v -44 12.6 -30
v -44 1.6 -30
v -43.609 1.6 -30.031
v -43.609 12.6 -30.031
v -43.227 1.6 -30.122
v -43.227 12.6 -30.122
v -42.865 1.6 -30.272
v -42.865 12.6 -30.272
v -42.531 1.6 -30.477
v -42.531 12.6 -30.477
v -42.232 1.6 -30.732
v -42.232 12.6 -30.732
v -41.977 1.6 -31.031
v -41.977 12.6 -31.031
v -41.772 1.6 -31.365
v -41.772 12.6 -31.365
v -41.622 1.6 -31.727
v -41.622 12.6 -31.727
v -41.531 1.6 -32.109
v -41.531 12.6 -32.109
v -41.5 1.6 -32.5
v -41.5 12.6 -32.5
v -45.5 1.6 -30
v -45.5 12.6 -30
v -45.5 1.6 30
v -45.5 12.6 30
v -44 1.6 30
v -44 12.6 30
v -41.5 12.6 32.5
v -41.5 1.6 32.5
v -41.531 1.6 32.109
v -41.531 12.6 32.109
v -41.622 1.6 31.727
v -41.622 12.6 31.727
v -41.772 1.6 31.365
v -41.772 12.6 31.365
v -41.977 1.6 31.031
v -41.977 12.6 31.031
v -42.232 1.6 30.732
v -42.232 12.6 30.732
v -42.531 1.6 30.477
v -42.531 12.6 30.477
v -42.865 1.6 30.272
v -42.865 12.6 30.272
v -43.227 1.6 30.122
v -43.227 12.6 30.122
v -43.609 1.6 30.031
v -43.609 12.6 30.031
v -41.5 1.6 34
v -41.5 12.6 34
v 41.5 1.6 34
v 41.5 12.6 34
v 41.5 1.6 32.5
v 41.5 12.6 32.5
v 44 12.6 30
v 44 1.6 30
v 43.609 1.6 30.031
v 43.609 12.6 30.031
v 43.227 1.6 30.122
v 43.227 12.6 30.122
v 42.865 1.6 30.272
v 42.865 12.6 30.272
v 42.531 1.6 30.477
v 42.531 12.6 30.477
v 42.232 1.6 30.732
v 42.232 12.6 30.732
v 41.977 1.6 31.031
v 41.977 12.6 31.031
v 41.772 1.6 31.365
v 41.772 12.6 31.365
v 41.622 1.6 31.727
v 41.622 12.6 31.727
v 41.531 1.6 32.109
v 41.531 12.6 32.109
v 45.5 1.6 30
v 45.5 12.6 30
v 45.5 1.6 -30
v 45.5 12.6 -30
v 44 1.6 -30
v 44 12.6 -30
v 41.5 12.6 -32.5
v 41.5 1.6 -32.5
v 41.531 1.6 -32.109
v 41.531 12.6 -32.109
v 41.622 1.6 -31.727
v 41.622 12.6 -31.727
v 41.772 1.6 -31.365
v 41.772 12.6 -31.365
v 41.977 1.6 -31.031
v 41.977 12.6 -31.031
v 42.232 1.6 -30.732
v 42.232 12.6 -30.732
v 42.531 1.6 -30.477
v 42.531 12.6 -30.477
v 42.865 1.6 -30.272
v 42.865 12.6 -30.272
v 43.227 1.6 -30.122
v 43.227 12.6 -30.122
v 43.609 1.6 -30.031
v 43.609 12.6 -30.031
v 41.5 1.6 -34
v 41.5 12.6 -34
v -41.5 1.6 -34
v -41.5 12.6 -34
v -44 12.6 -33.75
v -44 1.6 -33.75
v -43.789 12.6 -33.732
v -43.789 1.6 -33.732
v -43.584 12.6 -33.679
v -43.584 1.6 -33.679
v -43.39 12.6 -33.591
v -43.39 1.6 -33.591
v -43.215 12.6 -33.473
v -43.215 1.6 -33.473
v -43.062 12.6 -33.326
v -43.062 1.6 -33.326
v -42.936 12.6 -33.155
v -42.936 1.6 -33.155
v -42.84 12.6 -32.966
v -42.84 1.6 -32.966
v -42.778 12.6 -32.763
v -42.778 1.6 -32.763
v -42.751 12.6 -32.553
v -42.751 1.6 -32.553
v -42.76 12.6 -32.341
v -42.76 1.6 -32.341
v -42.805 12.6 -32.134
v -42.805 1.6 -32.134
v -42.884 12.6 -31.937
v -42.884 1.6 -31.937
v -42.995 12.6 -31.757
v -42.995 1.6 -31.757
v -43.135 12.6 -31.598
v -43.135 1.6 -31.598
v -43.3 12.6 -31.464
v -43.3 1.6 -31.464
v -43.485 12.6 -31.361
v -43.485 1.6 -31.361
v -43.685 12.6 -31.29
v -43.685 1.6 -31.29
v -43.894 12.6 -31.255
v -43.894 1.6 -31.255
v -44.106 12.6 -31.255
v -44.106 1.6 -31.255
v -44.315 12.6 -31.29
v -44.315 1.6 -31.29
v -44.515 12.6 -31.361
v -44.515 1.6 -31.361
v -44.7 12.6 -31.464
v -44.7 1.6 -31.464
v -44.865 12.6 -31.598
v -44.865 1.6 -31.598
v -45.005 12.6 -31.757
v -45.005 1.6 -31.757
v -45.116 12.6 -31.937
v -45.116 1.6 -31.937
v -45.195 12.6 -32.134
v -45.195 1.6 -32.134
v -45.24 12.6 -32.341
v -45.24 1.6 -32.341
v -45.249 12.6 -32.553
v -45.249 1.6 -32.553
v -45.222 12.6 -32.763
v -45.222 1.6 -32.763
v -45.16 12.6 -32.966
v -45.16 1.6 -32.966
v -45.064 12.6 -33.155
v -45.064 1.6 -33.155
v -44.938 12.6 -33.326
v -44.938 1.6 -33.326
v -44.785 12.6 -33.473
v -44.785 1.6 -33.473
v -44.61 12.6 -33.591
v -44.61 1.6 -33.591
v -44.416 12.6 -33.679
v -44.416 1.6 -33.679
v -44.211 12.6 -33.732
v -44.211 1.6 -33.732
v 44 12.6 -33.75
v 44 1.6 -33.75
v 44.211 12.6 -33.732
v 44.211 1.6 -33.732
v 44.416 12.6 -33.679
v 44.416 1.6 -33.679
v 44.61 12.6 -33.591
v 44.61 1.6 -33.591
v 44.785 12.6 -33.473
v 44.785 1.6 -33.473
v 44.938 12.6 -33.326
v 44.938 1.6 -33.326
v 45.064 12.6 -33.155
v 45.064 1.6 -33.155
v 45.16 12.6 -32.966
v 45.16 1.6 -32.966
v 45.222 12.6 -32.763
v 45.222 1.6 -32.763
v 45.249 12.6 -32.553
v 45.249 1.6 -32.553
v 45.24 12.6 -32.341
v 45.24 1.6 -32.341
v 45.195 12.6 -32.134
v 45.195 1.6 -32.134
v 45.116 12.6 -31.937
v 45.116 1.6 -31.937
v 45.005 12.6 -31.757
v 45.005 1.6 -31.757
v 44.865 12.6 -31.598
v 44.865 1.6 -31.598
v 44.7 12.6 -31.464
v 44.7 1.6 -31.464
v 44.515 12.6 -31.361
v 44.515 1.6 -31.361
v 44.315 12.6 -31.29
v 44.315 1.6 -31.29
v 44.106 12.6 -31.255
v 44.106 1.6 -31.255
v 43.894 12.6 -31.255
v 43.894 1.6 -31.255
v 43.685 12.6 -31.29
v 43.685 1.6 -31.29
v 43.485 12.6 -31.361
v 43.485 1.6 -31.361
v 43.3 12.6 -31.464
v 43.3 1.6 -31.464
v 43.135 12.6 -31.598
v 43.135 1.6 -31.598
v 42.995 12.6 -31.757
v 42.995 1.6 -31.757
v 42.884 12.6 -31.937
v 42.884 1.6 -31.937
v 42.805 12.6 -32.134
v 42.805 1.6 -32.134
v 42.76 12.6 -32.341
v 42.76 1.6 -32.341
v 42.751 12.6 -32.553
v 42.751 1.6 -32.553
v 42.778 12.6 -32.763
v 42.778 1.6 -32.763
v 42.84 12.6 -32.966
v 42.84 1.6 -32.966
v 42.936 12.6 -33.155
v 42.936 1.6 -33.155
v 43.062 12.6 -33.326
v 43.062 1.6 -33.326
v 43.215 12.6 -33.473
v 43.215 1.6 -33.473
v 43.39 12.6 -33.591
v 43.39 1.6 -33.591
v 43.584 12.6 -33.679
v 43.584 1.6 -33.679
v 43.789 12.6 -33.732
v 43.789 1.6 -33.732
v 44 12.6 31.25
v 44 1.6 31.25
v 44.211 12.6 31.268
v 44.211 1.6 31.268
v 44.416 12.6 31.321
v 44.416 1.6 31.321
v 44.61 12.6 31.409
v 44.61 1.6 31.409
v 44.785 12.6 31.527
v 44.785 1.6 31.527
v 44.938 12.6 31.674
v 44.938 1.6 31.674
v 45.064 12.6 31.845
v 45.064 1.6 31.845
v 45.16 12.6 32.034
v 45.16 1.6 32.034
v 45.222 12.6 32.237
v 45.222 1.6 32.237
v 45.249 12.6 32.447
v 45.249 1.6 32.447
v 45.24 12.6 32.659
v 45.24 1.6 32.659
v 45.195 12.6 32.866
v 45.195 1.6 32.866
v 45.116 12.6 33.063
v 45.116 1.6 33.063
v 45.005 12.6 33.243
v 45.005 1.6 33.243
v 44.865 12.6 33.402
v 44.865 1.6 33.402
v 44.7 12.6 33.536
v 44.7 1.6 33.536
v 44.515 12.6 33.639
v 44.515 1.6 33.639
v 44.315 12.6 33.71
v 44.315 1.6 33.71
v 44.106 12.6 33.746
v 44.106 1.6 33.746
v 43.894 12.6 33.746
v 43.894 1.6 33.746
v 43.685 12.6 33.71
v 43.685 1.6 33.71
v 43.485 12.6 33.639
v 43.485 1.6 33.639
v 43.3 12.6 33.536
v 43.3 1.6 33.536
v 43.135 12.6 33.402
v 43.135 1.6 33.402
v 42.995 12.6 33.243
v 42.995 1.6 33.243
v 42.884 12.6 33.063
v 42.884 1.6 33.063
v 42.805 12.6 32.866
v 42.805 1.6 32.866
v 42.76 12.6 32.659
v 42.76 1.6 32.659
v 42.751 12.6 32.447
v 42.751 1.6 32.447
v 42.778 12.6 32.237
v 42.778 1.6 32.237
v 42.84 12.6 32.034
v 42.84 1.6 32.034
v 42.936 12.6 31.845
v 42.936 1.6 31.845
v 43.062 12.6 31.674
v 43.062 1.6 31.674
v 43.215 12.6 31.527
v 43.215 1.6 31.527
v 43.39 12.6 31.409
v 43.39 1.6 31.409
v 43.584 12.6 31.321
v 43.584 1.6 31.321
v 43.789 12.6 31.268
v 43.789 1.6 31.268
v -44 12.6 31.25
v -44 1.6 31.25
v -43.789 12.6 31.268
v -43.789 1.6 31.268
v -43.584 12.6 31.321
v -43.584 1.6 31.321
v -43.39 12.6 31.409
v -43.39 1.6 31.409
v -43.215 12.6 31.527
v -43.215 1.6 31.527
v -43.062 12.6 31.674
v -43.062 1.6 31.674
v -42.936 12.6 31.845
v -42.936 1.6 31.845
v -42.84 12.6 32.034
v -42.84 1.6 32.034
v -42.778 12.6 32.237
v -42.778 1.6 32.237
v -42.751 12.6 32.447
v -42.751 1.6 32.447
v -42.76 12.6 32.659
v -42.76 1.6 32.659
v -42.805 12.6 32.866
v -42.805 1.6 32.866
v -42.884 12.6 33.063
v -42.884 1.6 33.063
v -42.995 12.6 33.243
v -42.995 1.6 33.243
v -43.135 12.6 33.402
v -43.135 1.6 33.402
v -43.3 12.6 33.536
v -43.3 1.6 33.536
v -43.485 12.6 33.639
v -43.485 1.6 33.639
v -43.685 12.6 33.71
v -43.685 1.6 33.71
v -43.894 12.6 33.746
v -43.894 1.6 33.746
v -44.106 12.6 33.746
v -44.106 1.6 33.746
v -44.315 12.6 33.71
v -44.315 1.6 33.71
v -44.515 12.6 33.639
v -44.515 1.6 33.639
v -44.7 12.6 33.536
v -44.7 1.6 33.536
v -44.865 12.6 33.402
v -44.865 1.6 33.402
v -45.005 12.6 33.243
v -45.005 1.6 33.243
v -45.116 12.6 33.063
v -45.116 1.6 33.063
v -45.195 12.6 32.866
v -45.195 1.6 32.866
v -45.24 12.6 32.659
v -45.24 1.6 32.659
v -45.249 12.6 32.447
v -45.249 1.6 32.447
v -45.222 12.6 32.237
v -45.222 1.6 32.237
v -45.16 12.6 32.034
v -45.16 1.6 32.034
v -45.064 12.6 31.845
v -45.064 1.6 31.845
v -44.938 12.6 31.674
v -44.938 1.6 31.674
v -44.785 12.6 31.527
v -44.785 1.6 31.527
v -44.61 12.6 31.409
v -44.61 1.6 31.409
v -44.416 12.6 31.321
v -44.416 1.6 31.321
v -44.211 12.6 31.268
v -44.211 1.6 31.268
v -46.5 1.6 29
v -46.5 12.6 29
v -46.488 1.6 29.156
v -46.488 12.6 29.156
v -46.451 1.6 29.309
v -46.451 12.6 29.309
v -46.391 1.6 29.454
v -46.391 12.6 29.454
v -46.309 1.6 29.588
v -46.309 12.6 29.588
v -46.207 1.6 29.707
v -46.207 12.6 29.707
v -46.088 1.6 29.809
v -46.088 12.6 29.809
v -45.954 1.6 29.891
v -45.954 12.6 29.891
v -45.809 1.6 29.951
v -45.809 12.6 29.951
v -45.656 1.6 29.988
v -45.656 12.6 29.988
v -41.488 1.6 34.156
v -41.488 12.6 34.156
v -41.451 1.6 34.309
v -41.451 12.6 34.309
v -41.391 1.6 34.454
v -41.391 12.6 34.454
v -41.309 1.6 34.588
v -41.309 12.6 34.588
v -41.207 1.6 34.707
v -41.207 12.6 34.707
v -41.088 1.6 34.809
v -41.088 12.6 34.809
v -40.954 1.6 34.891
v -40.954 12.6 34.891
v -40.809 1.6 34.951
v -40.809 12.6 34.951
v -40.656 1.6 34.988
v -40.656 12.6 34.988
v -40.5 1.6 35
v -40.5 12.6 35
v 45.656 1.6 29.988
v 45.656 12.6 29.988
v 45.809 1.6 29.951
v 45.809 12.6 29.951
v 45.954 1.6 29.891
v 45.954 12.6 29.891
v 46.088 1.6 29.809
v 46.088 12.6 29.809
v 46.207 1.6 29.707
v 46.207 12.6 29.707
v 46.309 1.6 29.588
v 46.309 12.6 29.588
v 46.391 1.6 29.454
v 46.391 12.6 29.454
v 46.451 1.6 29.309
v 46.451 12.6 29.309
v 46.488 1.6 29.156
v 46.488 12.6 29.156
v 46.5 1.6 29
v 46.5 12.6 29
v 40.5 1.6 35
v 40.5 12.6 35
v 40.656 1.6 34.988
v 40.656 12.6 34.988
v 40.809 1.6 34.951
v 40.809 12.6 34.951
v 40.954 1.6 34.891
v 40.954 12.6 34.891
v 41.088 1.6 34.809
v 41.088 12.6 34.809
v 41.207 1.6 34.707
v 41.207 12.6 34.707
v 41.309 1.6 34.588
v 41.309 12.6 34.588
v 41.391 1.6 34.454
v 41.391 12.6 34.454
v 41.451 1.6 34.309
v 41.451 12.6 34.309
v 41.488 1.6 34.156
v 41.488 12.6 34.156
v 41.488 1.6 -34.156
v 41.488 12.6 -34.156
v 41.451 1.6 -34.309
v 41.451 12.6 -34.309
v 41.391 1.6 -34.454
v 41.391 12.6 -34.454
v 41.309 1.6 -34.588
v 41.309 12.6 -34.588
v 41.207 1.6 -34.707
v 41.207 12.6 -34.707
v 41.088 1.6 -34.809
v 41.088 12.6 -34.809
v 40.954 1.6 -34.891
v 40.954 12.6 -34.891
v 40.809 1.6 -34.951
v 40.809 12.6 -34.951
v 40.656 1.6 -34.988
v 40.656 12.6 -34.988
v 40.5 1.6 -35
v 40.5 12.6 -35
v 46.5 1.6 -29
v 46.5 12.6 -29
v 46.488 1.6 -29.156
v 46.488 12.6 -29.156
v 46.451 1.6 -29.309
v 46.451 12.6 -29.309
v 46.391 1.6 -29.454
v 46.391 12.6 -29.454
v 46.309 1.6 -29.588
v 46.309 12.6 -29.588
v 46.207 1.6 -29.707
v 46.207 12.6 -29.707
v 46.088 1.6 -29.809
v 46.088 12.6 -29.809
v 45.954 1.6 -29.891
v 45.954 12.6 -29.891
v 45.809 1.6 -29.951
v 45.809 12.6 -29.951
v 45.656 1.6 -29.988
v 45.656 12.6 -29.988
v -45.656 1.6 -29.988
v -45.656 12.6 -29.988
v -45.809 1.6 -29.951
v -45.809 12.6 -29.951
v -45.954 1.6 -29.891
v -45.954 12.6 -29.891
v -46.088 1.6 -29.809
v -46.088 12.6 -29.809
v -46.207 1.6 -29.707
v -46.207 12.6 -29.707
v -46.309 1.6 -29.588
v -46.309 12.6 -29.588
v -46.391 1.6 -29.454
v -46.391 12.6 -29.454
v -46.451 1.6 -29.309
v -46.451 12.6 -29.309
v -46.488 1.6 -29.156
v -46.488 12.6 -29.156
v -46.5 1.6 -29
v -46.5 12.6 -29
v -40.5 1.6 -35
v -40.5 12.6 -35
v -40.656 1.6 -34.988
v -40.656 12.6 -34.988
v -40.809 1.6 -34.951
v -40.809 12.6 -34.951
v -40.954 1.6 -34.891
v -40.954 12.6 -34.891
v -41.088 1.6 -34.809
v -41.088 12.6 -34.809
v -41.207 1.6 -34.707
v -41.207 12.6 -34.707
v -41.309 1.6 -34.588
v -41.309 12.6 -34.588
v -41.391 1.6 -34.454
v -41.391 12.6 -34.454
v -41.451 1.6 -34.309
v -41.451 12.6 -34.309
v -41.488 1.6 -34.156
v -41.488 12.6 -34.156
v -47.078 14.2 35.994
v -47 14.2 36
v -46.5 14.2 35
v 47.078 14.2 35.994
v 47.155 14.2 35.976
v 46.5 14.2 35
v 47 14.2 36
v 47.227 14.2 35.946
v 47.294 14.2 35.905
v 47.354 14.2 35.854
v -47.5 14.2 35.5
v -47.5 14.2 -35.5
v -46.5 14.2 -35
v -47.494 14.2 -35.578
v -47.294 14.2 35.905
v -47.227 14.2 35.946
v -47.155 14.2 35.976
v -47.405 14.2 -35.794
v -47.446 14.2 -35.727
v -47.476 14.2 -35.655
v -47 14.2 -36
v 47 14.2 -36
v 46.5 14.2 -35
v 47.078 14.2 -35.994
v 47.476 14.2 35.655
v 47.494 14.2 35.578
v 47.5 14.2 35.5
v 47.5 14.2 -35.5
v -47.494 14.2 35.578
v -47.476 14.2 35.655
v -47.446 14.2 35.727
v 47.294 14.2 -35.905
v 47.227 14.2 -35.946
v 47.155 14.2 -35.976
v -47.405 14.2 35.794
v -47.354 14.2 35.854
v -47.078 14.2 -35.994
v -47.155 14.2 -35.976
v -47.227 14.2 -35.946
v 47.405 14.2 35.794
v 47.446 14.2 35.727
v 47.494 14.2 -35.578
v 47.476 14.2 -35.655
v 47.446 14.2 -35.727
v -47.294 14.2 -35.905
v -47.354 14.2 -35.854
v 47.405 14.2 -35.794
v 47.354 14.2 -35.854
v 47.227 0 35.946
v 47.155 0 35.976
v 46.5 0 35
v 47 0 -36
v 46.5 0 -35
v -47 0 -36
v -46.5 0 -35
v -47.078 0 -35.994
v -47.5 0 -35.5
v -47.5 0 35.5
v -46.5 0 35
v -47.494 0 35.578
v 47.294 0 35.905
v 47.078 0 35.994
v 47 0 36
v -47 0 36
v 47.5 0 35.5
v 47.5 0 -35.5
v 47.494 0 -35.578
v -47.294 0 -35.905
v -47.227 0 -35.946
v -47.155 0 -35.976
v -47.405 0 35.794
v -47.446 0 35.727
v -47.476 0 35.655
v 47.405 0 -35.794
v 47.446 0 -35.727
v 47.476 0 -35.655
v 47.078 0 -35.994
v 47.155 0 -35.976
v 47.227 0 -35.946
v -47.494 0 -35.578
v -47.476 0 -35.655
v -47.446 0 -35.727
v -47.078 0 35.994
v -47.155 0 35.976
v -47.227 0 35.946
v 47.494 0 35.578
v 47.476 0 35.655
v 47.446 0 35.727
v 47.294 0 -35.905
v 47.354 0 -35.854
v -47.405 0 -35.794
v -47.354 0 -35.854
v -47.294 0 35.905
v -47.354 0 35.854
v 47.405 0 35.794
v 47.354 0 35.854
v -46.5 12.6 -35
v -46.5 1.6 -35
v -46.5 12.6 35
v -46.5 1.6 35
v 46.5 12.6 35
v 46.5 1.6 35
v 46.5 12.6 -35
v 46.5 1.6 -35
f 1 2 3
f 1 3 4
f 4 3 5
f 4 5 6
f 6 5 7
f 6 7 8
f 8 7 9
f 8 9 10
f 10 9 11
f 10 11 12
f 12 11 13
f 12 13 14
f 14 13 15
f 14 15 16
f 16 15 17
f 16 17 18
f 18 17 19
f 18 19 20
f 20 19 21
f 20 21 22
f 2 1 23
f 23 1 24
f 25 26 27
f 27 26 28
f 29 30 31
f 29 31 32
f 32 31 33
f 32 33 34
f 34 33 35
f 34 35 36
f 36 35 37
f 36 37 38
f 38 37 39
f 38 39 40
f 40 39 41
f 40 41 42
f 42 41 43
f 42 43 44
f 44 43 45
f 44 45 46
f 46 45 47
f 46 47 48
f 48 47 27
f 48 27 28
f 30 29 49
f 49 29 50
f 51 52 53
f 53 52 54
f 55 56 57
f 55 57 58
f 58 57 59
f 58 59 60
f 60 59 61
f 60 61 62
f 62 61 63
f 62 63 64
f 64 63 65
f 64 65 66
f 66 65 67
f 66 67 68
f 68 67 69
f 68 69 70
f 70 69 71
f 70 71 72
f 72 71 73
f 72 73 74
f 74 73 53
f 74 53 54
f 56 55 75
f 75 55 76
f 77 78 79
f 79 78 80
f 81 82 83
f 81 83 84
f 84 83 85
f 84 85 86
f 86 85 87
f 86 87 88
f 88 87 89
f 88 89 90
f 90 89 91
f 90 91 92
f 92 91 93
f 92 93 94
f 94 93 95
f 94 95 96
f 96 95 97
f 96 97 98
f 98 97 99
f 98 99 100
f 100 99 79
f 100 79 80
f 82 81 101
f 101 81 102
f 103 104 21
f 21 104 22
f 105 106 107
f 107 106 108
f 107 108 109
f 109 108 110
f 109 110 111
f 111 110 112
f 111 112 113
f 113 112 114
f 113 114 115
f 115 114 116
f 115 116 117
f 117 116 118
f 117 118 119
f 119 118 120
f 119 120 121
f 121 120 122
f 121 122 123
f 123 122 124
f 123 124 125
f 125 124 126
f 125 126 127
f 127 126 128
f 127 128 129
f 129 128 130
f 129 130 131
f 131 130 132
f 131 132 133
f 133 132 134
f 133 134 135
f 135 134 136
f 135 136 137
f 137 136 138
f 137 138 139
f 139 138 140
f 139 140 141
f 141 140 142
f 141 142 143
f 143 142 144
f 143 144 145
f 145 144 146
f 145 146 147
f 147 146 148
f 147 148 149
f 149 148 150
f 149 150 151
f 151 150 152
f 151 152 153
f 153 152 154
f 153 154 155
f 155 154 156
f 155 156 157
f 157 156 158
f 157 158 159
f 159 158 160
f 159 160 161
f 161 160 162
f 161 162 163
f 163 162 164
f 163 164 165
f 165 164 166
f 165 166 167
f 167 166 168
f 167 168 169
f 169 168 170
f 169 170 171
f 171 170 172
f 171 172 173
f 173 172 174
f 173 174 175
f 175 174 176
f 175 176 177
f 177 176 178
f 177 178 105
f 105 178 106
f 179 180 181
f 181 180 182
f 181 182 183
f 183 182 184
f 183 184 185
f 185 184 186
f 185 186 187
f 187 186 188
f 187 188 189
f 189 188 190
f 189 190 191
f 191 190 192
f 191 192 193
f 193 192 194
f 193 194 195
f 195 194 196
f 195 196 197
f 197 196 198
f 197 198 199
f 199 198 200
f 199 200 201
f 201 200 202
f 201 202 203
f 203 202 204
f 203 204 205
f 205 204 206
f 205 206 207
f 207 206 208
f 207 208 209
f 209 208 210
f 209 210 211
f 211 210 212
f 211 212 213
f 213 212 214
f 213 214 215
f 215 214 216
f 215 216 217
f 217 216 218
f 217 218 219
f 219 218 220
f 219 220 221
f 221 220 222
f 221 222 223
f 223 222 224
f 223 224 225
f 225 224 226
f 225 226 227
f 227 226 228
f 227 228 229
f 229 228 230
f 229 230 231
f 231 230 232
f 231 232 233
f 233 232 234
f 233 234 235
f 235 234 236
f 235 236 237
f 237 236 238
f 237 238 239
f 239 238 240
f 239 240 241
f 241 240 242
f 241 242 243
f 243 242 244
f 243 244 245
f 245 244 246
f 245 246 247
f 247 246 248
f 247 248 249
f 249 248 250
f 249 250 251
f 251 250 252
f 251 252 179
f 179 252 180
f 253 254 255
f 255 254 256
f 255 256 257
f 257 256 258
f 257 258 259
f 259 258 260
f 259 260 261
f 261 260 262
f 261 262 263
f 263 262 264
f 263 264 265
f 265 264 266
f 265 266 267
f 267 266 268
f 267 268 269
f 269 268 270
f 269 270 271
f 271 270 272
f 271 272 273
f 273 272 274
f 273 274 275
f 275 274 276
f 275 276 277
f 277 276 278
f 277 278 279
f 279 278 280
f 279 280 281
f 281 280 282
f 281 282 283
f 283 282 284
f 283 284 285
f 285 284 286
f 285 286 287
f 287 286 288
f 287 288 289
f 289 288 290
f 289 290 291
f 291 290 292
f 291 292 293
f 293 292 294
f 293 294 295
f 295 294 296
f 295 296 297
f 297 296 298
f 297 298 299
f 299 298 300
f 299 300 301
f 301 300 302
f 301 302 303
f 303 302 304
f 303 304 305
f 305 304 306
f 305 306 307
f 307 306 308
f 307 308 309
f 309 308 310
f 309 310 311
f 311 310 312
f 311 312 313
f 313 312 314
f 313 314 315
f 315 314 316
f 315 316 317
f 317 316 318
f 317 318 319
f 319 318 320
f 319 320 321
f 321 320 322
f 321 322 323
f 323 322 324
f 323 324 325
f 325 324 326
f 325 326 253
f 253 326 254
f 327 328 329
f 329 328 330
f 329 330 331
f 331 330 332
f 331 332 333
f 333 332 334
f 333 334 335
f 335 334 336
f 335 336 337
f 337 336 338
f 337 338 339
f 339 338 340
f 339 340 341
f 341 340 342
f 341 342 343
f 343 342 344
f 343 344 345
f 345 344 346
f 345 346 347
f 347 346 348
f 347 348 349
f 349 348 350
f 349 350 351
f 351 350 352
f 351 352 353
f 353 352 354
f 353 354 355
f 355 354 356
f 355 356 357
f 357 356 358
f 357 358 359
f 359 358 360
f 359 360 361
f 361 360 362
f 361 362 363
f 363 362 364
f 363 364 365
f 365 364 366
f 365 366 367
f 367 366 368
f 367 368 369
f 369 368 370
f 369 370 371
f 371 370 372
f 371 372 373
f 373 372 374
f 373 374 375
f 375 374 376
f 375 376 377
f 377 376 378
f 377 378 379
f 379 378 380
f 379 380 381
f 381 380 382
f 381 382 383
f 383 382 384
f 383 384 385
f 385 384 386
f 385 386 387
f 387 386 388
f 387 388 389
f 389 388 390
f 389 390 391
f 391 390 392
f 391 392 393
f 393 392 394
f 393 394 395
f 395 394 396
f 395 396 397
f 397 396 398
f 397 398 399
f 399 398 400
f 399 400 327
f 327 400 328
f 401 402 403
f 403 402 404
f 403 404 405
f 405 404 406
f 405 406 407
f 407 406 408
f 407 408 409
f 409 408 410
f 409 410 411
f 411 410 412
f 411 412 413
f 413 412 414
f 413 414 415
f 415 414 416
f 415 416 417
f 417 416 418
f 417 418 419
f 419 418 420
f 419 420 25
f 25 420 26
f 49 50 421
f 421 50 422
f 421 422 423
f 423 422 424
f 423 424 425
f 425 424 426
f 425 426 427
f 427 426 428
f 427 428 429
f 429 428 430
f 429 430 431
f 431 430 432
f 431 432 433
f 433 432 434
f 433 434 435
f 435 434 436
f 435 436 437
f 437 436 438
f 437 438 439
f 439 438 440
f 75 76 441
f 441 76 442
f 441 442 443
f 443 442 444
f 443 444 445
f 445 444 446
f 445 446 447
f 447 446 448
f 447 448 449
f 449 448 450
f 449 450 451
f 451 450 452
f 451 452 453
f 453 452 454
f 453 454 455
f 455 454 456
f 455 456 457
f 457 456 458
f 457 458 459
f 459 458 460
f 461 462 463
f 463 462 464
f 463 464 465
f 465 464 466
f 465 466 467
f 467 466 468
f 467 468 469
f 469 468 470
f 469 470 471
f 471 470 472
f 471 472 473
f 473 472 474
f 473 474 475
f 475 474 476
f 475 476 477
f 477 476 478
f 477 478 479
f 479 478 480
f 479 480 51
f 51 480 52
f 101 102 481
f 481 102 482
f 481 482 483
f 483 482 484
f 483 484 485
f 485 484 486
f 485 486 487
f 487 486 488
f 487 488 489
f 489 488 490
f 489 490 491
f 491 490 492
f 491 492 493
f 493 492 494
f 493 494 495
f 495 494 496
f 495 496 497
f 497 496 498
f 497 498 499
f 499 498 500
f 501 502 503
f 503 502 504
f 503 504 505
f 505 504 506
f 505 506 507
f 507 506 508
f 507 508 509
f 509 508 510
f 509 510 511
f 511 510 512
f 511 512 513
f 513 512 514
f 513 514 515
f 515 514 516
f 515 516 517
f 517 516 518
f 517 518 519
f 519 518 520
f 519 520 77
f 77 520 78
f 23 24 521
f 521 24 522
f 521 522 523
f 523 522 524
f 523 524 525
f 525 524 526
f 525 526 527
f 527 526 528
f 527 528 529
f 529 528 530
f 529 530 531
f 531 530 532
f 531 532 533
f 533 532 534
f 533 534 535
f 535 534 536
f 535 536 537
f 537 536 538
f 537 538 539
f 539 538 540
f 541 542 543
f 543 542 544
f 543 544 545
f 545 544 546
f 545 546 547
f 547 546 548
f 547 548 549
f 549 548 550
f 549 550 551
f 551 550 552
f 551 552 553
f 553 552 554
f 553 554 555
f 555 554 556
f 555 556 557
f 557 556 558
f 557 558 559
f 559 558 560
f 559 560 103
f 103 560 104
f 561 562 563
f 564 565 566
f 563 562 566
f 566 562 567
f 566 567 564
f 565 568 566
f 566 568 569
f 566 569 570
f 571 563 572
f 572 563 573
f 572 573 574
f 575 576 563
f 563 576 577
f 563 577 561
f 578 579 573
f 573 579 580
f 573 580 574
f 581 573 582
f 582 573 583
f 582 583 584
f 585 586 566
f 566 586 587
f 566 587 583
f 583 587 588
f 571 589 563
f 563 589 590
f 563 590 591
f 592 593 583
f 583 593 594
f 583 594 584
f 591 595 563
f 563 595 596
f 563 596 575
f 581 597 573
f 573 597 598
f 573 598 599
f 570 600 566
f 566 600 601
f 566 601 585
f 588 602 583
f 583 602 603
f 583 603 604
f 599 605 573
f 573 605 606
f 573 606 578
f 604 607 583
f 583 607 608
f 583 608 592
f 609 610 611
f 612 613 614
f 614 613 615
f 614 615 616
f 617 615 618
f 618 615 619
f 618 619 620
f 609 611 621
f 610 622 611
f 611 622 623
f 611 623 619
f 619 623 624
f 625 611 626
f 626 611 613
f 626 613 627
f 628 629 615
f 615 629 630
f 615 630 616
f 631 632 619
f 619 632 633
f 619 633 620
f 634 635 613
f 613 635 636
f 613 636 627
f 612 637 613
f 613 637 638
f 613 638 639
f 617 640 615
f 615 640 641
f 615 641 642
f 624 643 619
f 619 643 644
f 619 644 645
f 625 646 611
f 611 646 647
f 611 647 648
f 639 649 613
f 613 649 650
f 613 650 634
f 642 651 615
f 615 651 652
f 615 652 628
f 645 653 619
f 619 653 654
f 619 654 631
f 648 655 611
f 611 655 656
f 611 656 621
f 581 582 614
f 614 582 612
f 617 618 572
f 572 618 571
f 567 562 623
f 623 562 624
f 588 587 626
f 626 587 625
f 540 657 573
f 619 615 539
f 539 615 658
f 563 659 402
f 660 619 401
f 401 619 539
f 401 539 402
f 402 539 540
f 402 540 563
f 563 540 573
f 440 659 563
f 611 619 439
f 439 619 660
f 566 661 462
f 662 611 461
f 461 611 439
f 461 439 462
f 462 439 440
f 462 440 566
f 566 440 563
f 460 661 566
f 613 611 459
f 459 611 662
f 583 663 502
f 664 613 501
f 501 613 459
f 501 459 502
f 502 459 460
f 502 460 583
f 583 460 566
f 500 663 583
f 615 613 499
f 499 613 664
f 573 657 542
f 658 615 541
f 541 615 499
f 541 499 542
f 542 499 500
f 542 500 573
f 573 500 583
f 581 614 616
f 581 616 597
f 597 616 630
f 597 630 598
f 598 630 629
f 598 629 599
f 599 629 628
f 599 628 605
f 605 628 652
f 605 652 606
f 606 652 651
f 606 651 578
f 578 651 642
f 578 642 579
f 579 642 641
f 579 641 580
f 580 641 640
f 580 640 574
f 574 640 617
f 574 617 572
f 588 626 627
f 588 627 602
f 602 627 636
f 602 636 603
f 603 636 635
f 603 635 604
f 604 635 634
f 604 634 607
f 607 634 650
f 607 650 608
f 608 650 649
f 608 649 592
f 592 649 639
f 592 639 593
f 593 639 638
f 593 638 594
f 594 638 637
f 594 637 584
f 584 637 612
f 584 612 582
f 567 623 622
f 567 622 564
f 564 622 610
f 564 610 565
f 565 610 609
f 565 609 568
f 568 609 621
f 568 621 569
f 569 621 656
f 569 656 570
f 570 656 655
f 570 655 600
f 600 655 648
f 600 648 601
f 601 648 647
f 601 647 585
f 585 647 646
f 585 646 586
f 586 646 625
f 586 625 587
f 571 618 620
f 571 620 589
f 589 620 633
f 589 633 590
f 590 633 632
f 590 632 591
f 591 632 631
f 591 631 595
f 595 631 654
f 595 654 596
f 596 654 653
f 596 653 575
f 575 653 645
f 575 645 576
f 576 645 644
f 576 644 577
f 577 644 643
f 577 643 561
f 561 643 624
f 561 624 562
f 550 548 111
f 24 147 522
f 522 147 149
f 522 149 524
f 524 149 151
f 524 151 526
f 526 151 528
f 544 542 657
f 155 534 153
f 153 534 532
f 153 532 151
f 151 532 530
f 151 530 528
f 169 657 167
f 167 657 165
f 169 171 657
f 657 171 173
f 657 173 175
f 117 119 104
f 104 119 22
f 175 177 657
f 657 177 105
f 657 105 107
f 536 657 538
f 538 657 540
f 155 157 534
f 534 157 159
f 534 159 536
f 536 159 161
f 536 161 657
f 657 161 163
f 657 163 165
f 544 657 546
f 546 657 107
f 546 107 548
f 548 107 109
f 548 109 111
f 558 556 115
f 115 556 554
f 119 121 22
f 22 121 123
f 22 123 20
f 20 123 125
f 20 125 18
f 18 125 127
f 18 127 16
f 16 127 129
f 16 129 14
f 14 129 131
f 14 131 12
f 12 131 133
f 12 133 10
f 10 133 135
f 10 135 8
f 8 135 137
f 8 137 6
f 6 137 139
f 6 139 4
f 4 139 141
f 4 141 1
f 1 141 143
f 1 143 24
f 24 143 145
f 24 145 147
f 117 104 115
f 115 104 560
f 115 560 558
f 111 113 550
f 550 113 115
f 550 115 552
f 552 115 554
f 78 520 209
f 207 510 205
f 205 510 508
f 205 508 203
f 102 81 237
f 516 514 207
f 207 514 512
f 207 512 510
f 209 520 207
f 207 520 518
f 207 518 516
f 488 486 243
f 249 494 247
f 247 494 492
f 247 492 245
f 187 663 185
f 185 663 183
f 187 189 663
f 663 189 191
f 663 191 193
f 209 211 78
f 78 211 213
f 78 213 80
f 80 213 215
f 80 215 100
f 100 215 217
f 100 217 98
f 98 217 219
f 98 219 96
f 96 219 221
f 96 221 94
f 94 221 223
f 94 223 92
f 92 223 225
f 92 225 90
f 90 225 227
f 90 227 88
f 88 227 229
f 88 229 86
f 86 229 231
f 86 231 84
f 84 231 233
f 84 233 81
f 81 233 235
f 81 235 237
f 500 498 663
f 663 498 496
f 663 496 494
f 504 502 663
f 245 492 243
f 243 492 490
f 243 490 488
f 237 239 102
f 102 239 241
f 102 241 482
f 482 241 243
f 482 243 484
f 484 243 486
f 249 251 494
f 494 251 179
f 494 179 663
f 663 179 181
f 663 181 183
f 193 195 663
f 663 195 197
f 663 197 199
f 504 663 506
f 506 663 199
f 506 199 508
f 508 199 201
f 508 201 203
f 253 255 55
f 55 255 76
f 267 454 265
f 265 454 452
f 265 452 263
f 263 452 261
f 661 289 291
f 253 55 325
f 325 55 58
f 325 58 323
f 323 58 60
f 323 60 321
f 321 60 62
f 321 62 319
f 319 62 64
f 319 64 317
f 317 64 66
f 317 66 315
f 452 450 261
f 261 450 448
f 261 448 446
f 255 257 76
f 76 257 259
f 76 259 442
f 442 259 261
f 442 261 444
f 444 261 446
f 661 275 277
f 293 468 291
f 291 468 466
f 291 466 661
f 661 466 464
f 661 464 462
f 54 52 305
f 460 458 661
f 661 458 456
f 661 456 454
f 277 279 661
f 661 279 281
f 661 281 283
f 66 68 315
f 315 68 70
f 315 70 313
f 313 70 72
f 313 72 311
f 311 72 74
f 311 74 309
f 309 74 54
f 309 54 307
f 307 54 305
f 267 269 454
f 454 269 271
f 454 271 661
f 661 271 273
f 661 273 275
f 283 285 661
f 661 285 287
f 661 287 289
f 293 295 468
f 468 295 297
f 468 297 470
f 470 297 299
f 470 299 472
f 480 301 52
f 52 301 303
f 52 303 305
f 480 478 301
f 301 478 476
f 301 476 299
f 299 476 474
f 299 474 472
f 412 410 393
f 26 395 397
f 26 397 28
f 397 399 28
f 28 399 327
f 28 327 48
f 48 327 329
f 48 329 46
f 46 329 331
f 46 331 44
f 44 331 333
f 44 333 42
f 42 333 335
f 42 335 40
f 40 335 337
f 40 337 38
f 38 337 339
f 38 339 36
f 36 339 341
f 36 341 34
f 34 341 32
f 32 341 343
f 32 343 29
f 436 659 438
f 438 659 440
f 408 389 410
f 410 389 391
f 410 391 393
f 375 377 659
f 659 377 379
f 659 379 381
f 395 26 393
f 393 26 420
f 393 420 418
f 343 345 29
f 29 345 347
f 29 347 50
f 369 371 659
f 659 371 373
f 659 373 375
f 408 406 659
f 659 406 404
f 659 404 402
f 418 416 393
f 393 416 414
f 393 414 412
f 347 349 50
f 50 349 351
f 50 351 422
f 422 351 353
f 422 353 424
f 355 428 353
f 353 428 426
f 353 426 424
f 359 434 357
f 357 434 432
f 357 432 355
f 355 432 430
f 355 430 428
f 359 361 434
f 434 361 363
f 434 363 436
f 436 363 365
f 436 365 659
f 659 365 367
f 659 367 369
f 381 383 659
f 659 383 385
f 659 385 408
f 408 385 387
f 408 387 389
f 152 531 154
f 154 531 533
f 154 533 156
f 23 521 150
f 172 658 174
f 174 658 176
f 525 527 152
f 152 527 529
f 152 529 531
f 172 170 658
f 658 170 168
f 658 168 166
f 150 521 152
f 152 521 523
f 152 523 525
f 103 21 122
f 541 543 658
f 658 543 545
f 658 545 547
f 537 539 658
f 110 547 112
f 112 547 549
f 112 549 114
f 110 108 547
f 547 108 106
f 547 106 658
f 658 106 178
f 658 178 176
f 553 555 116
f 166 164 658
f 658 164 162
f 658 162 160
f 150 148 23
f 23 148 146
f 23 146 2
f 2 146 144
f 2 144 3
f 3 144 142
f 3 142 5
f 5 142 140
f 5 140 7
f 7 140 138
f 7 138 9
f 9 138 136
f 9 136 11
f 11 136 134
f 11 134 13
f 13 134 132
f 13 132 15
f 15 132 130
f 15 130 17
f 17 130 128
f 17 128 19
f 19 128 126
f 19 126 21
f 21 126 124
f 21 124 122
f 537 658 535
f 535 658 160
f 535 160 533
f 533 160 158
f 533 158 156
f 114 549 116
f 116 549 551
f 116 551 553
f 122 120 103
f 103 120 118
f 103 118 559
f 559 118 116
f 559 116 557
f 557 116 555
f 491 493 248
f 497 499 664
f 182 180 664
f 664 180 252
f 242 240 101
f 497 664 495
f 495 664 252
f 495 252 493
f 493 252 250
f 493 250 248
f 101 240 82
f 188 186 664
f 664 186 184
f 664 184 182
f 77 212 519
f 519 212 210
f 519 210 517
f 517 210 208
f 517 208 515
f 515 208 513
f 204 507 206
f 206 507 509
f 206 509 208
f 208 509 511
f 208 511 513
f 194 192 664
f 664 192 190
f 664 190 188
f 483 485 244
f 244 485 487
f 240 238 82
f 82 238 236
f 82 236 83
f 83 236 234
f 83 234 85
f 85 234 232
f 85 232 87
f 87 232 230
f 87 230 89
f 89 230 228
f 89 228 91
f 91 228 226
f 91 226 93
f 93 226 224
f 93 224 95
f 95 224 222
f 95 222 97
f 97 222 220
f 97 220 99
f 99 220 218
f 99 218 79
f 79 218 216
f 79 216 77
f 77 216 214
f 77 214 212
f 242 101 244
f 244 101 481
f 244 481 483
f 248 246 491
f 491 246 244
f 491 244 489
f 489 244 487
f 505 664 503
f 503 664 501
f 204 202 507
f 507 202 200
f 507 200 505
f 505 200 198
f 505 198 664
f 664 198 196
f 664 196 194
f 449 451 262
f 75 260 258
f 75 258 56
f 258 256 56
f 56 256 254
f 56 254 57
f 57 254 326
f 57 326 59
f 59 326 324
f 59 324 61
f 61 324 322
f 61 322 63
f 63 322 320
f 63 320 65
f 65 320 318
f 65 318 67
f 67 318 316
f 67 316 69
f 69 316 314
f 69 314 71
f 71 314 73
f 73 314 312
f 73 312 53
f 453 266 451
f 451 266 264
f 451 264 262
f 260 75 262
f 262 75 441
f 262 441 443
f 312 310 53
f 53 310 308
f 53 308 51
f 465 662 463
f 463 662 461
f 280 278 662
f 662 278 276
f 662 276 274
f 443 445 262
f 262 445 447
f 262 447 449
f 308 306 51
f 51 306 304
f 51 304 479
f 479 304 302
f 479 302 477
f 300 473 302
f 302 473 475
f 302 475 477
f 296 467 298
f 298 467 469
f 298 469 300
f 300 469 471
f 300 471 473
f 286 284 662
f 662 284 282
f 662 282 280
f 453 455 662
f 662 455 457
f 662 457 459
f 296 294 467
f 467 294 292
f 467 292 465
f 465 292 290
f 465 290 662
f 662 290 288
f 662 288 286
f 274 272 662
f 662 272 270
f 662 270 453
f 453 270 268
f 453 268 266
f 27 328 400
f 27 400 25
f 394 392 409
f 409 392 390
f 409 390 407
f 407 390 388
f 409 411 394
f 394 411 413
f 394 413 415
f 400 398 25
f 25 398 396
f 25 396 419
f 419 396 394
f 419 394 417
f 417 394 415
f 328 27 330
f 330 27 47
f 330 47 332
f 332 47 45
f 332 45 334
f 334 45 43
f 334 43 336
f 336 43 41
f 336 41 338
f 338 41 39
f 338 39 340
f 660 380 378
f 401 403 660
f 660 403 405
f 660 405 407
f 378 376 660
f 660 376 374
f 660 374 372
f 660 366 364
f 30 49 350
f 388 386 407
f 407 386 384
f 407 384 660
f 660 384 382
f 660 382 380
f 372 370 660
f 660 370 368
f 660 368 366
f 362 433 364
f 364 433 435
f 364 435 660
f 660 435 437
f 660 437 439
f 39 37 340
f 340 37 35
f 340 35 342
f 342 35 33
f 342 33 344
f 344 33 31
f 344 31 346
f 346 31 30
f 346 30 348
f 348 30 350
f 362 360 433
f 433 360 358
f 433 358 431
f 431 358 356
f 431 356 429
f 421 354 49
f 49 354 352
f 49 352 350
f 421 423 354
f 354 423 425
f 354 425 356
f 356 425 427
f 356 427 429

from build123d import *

# Parameters (mm, degrees)
SKETCH1_W           = 95
SKETCH1_H           = 72
SKETCH1_R           = 1.25
BOSS_EXTRUDE1_DEPTH = 14.2
FILLET1_R           = 0.5
FILLET2_R           = 1
SKETCH2_W           = 93
SKETCH2_H           = 70
CUT_EXTRUDE1_DEPTH  = 1.6
SKETCH3_W           = 93
SKETCH3_H           = 70
CUT_EXTRUDE2_DEPTH  = 1.6


with BuildPart() as part:
    # Sketch1 → Boss-Extrude1 (new body)
    with BuildSketch(Plane(origin=(0, 0, 0), x_dir=(1, 0, 0), z_dir=(0, 1, 0))):
        Rectangle(SKETCH1_W, SKETCH1_H)
        with Locations(Location((-44, 32.5, 0), (0, 0, 270))):
            Circle(SKETCH1_R, mode=Mode.SUBTRACT)
        with Locations(Location((44, 32.5, 0), (0, 0, 90))):
            Circle(SKETCH1_R, mode=Mode.SUBTRACT)
        with Locations(Location((44, -32.5, 0), (0, 0, 270))):
            Circle(SKETCH1_R, mode=Mode.SUBTRACT)
        with Locations(Location((-44, -32.5, 0), (0, 0, 90))):
            Circle(SKETCH1_R, mode=Mode.SUBTRACT)
        with BuildLine():
            Line((-44, 30), (-46.5, 30))
            Line((-46.5, 30), (-46.5, -30))
            Line((-46.5, -30), (-44, -30))
            ThreePointArc((-44, -30), (-42.232233047, -30.732233047), (-41.5, -32.5))
            Line((-41.5, -32.5), (-41.5, -35))
            Line((-41.5, -35), (41.5, -35))
            Line((41.5, -35), (41.5, -32.5))
            ThreePointArc((41.5, -32.5), (42.232233047, -30.732233047), (44, -30))
            Line((44, -30), (46.5, -30))
            Line((46.5, -30), (46.5, 30))
            Line((46.5, 30), (44, 30))
            ThreePointArc((44, 30), (42.232233047, 30.732233047), (41.5, 32.5))
            Line((41.5, 32.5), (41.5, 35))
            Line((41.5, 35), (-41.5, 35))
            Line((-41.5, 35), (-41.5, 32.5))
            ThreePointArc((-41.5, 32.5), (-42.232233047, 30.732233047), (-44, 30))
        make_face(mode=Mode.SUBTRACT)
    extrude(amount=BOSS_EXTRUDE1_DEPTH)

    # Fillet1
    fillet1_edges = [part.edges().sort_by_distance(p)[0] for p in [
        (47.5, 7.1, -36),
        (47.5, 7.1, 36),
        (-47.5, 7.1, 36),
        (-47.5, 7.1, -36),
    ]]
    fillet(fillet1_edges, radius=FILLET1_R)

    # Fillet2
    fillet2_edges = [part.edges().sort_by_distance(p)[0] for p in [
        (-46.5, 7.1, -30),
        (-46.5, 7.1, 30),
        (-41.5, 7.1, 35),
        (41.5, 7.1, 35),
        (46.5, 7.1, 30),
        (46.5, 7.1, -30),
        (41.5, 7.1, -35),
        (-41.5, 7.1, -35),
    ]]
    fillet(fillet2_edges, radius=FILLET2_R)

    # Sketch2 → Cut-Extrude1 (cut)
    with BuildSketch(Plane(origin=(0, 14.2, 0), x_dir=(1, 0, 0), z_dir=(0, 1, 0))):
        Rectangle(SKETCH2_W, SKETCH2_H)
    extrude(amount=-CUT_EXTRUDE1_DEPTH, mode=Mode.SUBTRACT)

    # Sketch3 → Cut-Extrude2 (cut)
    with BuildSketch(Plane.XZ):
        Rectangle(SKETCH3_W, SKETCH3_H)
    extrude(amount=-CUT_EXTRUDE2_DEPTH, mode=Mode.SUBTRACT)


solid = part.part
